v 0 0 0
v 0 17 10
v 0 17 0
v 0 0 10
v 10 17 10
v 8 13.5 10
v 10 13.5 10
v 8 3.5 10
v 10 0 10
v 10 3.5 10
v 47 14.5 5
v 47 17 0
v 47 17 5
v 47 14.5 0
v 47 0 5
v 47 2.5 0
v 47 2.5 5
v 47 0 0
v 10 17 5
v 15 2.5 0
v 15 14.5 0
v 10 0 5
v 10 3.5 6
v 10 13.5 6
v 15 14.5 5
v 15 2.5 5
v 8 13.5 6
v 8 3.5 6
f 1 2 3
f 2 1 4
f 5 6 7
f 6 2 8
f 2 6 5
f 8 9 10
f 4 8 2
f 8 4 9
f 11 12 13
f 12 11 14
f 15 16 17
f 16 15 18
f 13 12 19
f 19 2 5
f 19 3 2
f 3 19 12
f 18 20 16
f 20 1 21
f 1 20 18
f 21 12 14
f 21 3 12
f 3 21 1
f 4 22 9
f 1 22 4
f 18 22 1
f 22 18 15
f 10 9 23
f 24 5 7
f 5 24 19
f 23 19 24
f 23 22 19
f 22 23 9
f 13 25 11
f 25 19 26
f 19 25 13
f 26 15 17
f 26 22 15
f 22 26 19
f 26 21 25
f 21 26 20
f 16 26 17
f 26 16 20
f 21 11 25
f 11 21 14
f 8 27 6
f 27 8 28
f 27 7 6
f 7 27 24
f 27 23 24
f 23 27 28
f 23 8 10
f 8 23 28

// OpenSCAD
// ignition-adapter soldering jig

oversize = 1;


// subtract cutouts for the standoffs, circuits, and USB notch
difference(){
// create the body
cube(size=[40+7,17,10], center=false);
    
// create the standoff cutout
translate([10,-1,5])
    cube(size=[(42+oversize),17+(2*oversize),(5+oversize)], center=false);

// create the circuit clearance cutout
translate([15,2.5,-(oversize)])
    cube(size=[(25+7+oversize),12,5+(2*oversize)], center=false);

// create the usb cutout
translate([8,3.5,6])
    cube(size=[(3+oversize),10,(4+oversize)], center=false);
}
